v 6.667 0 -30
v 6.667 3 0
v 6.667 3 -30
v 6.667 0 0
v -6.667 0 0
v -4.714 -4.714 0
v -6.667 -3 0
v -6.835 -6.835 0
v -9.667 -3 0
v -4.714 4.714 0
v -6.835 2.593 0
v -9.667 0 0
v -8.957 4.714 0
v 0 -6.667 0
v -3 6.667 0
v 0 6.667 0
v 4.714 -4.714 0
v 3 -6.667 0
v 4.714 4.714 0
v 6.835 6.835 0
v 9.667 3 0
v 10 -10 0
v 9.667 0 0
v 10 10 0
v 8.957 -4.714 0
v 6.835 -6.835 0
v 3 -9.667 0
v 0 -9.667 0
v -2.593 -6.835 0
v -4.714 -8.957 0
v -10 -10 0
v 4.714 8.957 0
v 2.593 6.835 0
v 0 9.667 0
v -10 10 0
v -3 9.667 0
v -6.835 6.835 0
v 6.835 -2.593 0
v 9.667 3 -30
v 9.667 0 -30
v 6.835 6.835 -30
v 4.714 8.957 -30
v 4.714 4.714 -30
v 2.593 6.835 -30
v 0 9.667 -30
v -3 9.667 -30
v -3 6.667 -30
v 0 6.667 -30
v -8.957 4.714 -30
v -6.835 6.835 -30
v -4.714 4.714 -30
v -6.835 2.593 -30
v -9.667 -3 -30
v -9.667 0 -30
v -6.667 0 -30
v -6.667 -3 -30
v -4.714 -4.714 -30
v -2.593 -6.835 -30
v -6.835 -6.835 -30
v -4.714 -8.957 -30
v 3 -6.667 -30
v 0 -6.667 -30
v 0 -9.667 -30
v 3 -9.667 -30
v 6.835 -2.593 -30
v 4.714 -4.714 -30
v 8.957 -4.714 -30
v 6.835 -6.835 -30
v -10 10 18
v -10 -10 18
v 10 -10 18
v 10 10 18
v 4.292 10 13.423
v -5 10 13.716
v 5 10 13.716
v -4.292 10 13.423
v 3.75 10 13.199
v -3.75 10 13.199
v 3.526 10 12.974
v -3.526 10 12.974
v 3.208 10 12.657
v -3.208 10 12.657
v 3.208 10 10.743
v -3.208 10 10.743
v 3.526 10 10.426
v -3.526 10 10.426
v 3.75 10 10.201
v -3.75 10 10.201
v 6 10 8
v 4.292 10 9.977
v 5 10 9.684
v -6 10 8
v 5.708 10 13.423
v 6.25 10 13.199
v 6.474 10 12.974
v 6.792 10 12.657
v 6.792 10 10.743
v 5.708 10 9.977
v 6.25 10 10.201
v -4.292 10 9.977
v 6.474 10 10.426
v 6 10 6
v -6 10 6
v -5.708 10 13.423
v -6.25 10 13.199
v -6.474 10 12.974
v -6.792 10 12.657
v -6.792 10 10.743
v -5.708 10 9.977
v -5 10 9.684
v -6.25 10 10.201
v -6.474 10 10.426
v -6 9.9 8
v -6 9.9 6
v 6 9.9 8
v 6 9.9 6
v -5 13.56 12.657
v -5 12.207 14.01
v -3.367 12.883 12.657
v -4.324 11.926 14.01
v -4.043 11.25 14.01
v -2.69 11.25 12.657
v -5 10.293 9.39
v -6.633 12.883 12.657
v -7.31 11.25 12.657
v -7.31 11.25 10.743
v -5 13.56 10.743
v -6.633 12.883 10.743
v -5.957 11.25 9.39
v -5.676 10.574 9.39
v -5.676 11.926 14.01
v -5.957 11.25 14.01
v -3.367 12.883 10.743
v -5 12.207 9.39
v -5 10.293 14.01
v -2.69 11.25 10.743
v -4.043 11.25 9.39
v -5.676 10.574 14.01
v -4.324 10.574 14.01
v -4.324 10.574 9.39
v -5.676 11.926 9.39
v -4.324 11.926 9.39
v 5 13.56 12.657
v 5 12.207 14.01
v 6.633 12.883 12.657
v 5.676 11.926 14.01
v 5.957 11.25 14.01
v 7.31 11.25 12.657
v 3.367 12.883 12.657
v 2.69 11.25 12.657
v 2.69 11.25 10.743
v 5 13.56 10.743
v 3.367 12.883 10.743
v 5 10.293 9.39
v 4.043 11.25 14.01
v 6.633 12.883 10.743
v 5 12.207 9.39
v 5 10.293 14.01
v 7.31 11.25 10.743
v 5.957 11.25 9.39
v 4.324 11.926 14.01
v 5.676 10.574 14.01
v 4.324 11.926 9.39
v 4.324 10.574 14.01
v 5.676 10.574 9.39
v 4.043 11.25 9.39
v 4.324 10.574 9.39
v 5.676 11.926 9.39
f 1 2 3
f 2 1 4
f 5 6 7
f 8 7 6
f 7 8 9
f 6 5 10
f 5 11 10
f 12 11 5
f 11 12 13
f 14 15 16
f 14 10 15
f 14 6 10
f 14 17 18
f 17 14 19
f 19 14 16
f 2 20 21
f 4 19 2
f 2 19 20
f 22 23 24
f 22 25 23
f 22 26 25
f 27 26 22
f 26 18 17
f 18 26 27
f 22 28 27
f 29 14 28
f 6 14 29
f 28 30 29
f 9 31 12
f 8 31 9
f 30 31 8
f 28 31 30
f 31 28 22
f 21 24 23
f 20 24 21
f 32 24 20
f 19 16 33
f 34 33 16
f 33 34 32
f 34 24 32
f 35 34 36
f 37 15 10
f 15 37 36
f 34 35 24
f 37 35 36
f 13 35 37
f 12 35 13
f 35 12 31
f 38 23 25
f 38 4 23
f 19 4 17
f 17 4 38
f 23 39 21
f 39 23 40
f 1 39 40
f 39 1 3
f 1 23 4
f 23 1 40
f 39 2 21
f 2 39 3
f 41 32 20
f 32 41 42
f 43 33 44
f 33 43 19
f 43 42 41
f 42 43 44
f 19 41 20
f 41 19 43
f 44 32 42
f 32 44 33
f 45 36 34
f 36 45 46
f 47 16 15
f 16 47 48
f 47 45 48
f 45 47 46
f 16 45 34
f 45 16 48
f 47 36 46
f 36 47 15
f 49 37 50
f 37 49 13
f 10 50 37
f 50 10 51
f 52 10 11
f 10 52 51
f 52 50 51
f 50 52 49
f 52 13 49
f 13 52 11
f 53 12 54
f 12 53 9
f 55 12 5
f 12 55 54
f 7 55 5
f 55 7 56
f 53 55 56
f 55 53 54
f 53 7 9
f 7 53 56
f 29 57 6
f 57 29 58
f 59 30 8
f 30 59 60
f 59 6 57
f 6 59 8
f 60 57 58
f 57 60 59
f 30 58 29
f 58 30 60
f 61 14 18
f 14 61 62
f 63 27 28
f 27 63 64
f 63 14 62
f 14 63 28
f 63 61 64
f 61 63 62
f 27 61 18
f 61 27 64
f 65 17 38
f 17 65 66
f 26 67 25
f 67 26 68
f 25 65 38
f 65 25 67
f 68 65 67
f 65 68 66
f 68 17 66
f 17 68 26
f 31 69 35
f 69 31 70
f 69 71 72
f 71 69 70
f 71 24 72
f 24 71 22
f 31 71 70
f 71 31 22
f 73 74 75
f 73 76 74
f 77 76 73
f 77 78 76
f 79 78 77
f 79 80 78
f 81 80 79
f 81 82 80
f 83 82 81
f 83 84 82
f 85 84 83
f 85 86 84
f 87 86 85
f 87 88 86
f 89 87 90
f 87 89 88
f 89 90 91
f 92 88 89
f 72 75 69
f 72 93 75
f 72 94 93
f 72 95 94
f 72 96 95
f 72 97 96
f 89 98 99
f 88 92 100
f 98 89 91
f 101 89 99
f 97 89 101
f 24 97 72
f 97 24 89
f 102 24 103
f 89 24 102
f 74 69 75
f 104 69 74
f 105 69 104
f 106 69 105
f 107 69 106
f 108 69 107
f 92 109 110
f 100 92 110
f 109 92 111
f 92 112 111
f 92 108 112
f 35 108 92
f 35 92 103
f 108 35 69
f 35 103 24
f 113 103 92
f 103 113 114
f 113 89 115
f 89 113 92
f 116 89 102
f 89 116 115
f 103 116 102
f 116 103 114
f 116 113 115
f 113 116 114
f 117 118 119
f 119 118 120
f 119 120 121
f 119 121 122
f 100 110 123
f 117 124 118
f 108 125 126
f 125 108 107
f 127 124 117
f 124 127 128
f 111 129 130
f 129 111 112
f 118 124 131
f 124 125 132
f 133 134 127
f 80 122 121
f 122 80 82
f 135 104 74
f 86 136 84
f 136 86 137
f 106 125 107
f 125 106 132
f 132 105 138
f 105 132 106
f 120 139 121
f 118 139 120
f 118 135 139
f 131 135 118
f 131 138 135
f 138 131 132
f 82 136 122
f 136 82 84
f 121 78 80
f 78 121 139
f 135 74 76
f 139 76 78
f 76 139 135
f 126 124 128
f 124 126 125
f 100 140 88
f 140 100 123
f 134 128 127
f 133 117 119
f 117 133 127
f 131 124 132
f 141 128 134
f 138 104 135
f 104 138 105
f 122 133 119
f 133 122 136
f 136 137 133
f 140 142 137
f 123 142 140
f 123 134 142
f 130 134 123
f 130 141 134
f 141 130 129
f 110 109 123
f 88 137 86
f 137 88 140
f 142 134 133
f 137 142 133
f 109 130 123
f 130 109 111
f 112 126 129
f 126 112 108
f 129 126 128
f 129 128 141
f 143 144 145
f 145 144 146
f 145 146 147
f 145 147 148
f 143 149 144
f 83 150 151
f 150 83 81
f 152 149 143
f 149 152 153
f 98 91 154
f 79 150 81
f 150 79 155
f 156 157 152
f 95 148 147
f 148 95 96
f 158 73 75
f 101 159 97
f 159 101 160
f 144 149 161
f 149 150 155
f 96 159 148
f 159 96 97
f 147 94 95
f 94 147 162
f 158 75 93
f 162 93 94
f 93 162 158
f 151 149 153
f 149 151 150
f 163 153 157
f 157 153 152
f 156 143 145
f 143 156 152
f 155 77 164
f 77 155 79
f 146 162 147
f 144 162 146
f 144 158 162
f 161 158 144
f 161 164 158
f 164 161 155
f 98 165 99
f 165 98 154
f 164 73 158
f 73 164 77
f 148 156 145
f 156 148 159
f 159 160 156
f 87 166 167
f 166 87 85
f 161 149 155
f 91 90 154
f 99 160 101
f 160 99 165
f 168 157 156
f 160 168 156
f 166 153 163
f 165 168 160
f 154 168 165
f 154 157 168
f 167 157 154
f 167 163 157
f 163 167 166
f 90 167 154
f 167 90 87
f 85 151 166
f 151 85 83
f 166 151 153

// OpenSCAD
// Parameters
head_size = 20;
head_height = 18;
eye_radius = 2.5;
tentacle_length = 30;
tentacle_thickness = 3;
num_tentacles = 8;

// Main model
union()
{

    // Square head
    difference()
    {
        // Head block
        translate([-head_size/2, -head_size/2, 0])
            cube([head_size, head_size, head_height], center = false);

        // Mouth
        translate([-6, head_size/2 - 0.1, head_height/3])
            cube([12, 2, 2], center = false);
    }

    // Eyes
    translate([-head_size/4, head_size/2 + eye_radius/2, head_height * 0.65])
        sphere(r = eye_radius);

    translate([ head_size/4, head_size/2 + eye_radius/2, head_height * 0.65])
        sphere(r = eye_radius);
    
    // Tentacles
    for (i = [0 : 360/num_tentacles : 360 - 360/num_tentacles])
    {
        rotate([0, 0, i])
            translate([head_size/3, 0, -tentacle_length])
                cube([tentacle_thickness, tentacle_thickness, tentacle_length], center = false);
    }
}
